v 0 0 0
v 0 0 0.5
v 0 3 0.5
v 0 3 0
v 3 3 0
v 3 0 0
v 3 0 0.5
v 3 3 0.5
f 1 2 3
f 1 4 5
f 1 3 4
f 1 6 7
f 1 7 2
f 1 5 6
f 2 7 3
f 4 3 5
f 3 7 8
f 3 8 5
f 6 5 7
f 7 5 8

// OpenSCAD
/* Warning, this is a very basic generator with a lot of approximation 
input data : [UDFN, RFX, 3x3x0.5mm, 8, , A, C04-00254A]
generated by com.zoubworld.electronics.cad.model3d.Basic
Date : Sun Feb 15 10:50:48 CET 2026
*/

//body
color("black")
translate([0,0,0])
cube([3.0,3.0,0.5], center=false);
